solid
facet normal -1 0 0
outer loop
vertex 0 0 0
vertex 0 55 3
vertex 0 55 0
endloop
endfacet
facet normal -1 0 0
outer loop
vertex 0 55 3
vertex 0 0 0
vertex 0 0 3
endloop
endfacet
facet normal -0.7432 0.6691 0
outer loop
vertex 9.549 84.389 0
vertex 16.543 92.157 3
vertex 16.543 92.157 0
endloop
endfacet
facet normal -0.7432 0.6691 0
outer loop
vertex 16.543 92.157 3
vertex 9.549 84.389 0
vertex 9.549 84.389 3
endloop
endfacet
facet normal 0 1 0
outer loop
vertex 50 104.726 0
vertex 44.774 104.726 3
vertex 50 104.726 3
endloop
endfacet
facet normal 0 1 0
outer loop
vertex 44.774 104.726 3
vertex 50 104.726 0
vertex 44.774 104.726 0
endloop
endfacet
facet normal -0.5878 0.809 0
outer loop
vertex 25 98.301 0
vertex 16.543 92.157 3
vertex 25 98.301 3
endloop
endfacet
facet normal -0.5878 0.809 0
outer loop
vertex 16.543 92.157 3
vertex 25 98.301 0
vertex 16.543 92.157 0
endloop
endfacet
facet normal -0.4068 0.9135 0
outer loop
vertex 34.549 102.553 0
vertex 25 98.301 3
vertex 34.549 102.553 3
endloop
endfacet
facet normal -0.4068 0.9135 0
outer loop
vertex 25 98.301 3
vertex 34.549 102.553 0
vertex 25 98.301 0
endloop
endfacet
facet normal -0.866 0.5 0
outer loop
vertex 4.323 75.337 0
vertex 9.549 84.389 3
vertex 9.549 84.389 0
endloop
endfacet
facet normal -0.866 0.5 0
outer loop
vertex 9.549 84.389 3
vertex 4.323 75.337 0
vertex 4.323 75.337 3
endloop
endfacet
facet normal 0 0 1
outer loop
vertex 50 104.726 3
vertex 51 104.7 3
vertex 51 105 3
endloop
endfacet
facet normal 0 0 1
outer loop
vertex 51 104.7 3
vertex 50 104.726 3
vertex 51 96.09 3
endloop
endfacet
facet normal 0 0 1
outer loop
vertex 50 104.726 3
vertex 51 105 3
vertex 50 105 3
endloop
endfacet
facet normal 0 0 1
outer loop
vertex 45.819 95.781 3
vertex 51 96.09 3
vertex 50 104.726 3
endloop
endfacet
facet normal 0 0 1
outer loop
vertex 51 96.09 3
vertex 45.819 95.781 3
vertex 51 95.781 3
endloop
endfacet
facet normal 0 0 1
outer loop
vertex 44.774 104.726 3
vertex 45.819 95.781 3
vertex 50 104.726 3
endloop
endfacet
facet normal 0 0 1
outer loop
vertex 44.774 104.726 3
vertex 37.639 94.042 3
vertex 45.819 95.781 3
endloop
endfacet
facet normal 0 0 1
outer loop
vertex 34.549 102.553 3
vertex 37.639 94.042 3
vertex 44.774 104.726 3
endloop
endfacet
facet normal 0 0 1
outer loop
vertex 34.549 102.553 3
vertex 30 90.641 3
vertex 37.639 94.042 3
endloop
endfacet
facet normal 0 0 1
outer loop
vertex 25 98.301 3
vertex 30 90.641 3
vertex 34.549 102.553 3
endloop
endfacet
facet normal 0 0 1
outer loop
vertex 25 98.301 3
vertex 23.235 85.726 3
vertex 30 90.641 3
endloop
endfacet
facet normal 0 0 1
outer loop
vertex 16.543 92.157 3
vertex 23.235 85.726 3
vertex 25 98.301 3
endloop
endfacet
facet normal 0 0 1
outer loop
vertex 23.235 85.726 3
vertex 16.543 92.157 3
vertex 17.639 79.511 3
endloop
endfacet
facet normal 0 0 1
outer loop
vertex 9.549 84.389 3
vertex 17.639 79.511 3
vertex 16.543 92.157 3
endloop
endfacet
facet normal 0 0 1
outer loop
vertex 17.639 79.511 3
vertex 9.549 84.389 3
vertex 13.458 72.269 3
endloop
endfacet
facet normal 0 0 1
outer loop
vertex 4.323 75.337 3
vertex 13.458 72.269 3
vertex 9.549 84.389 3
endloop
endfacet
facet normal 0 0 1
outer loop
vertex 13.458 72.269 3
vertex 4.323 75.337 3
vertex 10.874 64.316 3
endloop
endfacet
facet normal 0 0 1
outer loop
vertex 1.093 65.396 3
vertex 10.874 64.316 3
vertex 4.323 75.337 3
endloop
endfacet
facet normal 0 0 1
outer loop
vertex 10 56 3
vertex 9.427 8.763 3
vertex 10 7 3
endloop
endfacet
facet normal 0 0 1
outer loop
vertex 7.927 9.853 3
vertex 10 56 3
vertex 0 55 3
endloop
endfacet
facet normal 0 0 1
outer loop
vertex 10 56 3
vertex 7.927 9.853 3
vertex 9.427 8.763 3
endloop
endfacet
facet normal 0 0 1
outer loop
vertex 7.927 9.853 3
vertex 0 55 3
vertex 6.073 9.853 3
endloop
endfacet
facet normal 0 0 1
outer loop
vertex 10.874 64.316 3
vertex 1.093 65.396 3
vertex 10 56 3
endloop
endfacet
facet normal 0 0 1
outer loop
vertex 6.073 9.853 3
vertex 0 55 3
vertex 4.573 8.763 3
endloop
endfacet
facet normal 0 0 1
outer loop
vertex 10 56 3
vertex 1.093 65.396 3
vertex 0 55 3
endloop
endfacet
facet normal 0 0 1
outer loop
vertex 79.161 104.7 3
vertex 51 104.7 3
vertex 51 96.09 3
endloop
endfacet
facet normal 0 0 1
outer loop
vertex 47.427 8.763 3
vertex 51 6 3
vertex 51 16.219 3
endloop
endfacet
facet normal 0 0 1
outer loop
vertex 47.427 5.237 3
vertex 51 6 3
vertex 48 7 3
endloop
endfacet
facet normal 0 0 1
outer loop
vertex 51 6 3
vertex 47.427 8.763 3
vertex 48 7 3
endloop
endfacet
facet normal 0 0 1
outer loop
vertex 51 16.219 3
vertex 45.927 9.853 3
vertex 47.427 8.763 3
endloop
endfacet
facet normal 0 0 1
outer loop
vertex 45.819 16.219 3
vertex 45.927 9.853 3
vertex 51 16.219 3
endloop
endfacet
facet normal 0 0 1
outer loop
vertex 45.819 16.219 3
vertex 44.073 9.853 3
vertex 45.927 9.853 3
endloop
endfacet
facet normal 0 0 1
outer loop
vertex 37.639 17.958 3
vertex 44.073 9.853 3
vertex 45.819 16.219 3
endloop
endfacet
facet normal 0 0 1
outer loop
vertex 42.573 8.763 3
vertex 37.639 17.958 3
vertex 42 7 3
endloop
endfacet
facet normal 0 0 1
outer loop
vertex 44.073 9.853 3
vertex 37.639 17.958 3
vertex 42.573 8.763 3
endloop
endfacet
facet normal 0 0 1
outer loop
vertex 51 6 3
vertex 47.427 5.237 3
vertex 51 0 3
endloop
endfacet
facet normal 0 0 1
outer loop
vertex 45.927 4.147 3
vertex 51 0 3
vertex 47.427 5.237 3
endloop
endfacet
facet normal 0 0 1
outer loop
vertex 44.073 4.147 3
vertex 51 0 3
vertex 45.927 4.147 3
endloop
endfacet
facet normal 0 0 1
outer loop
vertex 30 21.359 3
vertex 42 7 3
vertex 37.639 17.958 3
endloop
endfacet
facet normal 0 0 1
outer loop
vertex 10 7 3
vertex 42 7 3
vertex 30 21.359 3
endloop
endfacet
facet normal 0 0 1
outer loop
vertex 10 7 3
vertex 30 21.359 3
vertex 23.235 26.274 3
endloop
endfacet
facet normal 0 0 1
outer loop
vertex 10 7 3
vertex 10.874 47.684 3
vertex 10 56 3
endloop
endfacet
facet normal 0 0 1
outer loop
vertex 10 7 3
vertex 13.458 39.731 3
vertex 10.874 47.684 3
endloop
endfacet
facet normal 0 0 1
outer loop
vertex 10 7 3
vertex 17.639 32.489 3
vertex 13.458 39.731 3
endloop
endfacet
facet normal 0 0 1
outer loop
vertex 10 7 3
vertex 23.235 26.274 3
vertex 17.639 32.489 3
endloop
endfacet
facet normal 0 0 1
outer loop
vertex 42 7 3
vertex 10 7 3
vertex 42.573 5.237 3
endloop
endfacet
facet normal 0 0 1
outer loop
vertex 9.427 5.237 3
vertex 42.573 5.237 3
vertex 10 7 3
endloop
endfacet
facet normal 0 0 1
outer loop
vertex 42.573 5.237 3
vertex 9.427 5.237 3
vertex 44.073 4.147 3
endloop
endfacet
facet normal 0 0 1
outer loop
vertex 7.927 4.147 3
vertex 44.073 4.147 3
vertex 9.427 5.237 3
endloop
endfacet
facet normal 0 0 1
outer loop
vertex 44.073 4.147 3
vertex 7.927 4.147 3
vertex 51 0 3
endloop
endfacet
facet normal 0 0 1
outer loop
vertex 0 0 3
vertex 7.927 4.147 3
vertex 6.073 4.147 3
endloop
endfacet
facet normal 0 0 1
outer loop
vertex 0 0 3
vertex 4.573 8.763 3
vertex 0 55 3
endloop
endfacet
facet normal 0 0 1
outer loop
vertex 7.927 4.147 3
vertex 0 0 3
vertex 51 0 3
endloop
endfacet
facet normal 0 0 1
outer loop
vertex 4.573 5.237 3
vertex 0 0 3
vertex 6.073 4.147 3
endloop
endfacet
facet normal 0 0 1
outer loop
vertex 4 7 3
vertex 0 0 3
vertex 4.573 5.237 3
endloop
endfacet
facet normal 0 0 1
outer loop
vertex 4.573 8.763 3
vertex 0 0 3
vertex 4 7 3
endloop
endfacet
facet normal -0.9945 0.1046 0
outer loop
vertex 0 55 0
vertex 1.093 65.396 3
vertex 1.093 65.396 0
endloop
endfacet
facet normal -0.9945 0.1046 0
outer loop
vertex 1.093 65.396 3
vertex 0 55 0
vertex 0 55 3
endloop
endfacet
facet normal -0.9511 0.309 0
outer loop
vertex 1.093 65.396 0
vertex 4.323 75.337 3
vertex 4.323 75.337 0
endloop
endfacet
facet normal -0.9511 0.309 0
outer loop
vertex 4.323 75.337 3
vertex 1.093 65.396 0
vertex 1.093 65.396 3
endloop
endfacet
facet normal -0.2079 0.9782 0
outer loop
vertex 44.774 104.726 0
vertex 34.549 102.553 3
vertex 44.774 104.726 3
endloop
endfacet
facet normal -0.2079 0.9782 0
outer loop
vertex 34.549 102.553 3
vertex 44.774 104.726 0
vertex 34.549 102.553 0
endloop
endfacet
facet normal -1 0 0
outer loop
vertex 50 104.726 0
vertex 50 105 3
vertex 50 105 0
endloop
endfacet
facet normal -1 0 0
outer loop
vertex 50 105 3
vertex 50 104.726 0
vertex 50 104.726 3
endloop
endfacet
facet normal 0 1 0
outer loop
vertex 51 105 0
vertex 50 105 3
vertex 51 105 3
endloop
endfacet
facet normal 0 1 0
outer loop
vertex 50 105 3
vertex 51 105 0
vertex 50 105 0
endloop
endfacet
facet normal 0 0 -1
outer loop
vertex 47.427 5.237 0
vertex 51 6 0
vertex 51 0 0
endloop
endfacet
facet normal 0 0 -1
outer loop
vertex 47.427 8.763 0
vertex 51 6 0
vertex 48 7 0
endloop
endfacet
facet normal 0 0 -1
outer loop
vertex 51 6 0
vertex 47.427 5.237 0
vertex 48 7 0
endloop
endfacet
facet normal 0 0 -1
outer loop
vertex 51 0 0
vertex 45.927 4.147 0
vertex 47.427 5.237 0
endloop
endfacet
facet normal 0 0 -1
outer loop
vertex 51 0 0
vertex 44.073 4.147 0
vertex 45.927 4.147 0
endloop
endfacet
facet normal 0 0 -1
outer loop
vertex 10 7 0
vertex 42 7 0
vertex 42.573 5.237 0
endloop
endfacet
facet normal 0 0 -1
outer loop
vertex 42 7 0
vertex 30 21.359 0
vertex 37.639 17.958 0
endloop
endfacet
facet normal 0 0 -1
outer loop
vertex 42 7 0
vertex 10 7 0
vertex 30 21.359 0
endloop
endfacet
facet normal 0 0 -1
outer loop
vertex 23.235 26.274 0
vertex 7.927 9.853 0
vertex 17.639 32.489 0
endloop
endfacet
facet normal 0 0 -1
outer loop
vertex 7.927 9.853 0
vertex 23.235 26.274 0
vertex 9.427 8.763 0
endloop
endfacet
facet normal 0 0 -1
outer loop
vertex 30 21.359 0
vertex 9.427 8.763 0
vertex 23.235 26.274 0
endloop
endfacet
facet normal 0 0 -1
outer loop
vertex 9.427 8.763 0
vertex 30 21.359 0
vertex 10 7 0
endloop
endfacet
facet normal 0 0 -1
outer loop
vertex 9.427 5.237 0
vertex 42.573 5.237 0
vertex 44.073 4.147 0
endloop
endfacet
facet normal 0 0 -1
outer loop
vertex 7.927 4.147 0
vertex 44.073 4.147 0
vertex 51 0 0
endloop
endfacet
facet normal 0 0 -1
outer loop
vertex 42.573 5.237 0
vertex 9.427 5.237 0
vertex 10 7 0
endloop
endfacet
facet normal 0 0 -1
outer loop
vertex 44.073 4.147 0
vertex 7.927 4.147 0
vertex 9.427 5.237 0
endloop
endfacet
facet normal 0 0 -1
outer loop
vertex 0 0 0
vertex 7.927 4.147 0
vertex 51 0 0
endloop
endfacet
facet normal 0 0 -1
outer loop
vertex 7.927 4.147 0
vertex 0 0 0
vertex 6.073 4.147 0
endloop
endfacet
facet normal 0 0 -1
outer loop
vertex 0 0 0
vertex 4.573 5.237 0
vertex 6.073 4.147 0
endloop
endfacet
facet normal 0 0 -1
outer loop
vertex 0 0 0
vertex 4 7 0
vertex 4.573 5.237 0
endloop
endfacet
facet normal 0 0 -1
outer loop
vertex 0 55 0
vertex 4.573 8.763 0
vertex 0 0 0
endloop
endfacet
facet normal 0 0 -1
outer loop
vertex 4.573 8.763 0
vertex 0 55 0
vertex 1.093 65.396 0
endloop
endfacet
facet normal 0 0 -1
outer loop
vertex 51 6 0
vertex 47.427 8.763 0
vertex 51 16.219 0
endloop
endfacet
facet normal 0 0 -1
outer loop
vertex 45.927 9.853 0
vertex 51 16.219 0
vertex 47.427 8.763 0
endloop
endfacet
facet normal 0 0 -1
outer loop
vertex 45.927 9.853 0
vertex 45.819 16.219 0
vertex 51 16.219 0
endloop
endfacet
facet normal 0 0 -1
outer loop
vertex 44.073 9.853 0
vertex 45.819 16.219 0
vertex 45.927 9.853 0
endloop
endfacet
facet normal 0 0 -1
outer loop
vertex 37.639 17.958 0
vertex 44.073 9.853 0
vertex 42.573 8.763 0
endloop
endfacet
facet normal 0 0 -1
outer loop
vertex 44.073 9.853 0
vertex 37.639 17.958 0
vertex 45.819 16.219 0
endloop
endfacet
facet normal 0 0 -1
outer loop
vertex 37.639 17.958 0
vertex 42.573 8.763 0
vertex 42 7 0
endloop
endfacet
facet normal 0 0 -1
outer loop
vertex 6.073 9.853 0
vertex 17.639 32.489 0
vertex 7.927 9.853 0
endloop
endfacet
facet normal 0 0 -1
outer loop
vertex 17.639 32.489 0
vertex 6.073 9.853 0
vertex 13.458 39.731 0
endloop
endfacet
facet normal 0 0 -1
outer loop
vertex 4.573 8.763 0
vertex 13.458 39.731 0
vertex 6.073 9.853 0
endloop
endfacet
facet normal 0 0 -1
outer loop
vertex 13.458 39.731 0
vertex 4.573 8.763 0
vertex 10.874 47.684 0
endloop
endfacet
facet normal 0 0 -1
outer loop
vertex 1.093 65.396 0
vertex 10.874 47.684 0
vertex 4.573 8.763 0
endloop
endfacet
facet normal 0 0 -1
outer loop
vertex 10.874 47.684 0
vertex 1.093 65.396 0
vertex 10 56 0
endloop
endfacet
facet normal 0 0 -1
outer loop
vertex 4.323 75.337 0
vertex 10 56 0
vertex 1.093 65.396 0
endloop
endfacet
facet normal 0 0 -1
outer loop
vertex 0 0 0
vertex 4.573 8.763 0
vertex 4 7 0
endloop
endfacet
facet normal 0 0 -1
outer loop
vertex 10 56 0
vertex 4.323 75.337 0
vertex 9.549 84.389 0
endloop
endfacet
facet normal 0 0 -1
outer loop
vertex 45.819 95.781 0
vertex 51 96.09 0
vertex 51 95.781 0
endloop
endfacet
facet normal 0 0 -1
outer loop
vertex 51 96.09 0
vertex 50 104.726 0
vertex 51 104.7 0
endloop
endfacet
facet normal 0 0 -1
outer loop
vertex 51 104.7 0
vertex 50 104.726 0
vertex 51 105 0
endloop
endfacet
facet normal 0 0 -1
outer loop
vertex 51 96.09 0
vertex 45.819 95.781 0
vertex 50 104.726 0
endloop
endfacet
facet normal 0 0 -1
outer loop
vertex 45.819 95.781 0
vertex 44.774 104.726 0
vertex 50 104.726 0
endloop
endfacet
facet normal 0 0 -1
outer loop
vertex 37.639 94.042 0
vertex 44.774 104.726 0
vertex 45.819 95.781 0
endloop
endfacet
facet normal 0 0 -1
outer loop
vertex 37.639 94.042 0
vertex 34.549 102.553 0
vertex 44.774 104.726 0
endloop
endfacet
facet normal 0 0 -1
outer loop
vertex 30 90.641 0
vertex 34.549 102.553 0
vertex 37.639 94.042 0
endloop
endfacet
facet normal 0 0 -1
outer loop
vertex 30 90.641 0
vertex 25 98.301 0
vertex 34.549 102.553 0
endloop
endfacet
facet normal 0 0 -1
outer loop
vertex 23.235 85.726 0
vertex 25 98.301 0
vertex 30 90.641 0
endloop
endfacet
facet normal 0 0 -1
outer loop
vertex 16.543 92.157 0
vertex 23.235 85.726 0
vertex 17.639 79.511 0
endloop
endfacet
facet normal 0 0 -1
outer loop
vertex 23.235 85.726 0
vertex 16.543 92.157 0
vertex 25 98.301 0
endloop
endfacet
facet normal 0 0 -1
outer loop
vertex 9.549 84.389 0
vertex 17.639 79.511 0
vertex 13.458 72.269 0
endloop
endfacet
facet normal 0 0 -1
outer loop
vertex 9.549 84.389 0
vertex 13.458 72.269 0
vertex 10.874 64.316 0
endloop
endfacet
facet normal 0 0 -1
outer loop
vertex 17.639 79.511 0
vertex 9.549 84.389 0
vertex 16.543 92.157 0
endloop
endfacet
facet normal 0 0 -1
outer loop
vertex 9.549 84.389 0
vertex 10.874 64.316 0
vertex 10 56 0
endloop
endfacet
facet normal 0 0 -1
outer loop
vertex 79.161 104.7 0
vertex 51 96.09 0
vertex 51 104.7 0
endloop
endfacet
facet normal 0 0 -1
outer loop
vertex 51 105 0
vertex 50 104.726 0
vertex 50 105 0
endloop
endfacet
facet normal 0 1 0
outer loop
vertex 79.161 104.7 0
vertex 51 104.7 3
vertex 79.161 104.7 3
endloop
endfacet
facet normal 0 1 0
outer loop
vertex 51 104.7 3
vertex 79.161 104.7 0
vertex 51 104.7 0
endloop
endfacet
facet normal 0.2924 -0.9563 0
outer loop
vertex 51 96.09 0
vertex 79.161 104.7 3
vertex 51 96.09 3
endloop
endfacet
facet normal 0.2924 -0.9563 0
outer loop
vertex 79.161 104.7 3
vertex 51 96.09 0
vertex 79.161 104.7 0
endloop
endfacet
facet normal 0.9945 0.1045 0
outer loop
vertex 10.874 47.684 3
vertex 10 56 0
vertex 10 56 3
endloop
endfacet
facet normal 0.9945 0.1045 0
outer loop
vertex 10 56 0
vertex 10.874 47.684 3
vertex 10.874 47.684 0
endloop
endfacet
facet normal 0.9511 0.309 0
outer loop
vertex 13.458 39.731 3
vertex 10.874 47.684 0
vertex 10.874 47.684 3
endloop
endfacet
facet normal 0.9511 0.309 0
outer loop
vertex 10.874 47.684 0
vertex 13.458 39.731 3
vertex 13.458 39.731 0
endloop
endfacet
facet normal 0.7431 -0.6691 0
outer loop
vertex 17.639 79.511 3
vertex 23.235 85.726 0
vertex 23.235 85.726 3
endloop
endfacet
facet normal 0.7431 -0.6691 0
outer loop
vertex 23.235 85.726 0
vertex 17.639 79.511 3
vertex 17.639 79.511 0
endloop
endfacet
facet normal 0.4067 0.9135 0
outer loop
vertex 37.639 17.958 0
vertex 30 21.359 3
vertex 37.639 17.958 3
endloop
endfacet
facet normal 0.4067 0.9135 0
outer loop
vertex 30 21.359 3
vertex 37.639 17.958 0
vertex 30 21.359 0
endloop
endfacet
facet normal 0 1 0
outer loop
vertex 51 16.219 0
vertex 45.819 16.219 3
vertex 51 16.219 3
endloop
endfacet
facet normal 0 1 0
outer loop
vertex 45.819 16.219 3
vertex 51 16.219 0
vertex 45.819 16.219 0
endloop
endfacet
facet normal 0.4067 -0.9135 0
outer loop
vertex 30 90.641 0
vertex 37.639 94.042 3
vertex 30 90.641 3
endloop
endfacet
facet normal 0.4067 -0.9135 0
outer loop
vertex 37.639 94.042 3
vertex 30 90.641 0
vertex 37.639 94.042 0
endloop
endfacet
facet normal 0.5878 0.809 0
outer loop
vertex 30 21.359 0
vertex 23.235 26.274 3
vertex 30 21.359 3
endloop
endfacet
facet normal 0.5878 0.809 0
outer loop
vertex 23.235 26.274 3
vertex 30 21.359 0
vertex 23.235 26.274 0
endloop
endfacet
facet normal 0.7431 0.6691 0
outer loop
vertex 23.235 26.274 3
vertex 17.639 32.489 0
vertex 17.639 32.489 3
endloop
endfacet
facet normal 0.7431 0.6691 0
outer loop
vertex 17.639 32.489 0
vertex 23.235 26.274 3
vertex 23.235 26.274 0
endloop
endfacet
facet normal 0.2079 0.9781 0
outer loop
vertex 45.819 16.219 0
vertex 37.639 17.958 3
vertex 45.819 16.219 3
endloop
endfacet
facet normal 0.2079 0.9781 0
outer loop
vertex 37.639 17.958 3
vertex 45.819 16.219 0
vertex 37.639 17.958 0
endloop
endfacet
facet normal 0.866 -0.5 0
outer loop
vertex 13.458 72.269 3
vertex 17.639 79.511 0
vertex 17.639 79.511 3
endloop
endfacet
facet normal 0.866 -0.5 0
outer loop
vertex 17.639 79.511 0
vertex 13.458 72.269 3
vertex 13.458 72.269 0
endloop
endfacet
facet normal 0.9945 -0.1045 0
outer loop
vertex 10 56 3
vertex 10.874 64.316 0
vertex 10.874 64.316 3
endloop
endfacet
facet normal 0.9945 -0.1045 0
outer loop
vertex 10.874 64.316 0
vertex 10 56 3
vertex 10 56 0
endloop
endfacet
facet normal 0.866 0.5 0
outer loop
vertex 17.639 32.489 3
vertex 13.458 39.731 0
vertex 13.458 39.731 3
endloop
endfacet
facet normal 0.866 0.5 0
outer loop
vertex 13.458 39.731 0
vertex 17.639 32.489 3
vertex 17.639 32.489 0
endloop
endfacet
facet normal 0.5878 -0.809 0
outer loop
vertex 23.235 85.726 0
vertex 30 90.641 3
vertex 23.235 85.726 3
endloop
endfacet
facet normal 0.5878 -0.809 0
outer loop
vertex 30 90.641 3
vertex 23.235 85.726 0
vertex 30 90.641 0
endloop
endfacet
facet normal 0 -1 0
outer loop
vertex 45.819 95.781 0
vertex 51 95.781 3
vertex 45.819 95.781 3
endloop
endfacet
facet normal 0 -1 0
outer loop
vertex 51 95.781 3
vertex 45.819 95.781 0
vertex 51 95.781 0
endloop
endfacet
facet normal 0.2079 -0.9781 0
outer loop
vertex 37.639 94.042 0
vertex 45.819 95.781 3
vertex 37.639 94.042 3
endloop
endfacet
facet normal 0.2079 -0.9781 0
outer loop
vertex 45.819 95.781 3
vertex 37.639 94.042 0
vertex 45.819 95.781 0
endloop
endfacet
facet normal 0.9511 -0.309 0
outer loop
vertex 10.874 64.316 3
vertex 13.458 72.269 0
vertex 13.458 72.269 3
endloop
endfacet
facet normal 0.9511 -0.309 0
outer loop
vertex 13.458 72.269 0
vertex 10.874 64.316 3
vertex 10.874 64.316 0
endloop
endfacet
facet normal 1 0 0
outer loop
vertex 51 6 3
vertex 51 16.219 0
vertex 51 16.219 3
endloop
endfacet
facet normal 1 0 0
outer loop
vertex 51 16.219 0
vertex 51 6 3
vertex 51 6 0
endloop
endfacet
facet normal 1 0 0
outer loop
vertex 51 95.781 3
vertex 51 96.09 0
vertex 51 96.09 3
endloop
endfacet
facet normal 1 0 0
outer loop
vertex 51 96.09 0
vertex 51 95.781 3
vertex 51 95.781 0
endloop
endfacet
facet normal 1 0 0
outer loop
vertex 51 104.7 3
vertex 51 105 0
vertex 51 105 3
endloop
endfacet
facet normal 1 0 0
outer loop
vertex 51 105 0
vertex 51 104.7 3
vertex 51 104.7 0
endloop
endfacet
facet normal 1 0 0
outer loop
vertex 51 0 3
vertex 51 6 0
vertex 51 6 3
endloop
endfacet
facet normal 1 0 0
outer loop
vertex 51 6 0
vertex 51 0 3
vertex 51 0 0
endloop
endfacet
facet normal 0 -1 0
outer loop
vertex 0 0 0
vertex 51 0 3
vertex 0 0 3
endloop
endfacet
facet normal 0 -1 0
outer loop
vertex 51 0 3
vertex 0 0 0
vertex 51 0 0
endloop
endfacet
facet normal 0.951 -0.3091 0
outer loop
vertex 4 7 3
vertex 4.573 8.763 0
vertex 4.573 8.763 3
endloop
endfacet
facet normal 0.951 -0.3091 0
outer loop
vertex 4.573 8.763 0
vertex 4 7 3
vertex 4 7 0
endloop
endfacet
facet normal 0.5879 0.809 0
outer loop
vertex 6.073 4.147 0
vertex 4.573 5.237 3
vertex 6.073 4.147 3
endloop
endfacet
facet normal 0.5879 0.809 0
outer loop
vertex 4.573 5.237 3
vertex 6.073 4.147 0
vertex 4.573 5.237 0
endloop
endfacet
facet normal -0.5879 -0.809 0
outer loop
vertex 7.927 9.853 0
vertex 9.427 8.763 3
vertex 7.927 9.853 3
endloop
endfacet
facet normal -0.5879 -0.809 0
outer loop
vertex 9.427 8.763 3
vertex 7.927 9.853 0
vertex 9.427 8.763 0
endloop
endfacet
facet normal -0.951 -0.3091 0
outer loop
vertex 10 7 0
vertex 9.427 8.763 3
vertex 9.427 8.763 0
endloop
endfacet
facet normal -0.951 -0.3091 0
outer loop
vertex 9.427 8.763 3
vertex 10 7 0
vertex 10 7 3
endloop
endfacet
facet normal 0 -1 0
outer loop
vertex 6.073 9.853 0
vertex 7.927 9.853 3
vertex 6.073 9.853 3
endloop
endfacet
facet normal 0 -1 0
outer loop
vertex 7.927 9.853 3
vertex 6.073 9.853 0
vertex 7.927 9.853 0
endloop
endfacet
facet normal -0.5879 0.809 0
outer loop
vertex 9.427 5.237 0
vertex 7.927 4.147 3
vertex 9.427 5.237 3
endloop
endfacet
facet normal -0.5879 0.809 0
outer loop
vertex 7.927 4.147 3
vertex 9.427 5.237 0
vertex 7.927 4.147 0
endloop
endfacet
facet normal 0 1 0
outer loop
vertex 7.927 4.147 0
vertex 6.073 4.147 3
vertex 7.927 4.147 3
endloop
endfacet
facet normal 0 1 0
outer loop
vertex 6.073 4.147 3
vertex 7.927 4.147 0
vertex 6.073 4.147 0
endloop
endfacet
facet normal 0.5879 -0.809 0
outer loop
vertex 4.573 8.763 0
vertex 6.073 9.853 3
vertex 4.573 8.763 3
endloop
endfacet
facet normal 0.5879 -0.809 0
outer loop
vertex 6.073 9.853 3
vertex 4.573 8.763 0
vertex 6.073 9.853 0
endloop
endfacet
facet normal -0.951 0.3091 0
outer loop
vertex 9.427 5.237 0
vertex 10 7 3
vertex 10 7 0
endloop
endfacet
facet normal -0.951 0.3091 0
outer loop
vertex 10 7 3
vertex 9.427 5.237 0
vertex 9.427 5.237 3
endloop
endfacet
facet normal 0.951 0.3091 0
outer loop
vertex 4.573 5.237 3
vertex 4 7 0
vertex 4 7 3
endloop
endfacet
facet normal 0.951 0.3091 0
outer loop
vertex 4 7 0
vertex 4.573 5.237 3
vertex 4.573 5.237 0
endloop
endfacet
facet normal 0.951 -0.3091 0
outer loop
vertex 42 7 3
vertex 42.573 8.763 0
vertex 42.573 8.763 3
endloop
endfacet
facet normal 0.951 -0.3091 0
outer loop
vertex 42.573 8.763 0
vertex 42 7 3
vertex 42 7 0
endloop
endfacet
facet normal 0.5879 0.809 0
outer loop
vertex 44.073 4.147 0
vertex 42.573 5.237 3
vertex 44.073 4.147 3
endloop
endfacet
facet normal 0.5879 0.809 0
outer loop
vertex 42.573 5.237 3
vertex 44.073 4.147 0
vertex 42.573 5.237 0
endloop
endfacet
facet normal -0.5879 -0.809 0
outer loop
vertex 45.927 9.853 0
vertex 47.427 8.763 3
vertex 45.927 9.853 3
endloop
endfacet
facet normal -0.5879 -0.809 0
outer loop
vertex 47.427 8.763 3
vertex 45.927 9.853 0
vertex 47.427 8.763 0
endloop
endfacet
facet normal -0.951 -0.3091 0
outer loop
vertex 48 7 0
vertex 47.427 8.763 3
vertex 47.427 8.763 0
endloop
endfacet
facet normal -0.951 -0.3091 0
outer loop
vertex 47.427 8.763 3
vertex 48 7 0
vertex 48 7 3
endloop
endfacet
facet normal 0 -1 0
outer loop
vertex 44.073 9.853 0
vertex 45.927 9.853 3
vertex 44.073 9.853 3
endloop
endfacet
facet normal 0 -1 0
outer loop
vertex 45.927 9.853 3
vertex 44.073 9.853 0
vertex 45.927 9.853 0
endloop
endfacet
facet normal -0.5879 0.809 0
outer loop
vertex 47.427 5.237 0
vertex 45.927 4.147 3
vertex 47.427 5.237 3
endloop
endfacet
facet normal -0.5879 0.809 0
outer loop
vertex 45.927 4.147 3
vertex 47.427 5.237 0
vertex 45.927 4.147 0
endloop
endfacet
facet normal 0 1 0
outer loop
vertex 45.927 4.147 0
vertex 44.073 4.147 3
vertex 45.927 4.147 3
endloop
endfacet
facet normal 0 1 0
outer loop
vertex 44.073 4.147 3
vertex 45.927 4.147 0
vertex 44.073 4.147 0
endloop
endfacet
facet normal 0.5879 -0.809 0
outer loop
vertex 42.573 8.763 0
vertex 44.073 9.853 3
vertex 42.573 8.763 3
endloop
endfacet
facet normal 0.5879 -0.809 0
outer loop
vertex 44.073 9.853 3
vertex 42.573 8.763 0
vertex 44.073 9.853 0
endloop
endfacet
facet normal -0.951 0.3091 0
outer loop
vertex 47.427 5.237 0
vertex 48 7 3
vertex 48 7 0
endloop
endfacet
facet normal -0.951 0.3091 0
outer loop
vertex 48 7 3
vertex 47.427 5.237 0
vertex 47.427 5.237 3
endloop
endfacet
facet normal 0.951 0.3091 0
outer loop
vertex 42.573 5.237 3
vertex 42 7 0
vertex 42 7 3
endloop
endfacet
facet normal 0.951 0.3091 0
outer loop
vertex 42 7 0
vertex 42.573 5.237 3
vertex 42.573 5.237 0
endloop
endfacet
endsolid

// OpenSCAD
height = 3;
diameter = 80;
width = 100;

hole = 6;

module outter() {
    difference() {
        cube([width+20, width+20, height+2]);
        translate([width/2, width/2, -1]) cylinder(d=width, height+2);
        translate([50, 0, -1]) cube([width, width, height+2]);
        translate([-1, -50, -1]) cube([width, width, height+2]);
    }
}

module item() {
    cube([width / 2 + 1, 6, height]);
    translate([0, 6, 0]) {
        difference() {
            cube([width, width, height]);
            translate([width/2, width/2, -1]) cylinder(d=diameter, height+2);
            translate([51, -1, -1]) cube([width, width, height+2]);
            translate([0, -1, -1]) outter();
        }
        difference() {
            translate([50, 88.7, 0]) cube([30, 10, height]);
            translate([50, 37.5, -1]) rotate([0, 0, 17]) cube([50, 50, height + 2]);
        }
    }
}
difference() {
    item();
    translate([7, 7, -1]) cylinder(d=hole, height+2);
    translate([45, 7, -1]) cylinder(d=hole, height+2);  
}
